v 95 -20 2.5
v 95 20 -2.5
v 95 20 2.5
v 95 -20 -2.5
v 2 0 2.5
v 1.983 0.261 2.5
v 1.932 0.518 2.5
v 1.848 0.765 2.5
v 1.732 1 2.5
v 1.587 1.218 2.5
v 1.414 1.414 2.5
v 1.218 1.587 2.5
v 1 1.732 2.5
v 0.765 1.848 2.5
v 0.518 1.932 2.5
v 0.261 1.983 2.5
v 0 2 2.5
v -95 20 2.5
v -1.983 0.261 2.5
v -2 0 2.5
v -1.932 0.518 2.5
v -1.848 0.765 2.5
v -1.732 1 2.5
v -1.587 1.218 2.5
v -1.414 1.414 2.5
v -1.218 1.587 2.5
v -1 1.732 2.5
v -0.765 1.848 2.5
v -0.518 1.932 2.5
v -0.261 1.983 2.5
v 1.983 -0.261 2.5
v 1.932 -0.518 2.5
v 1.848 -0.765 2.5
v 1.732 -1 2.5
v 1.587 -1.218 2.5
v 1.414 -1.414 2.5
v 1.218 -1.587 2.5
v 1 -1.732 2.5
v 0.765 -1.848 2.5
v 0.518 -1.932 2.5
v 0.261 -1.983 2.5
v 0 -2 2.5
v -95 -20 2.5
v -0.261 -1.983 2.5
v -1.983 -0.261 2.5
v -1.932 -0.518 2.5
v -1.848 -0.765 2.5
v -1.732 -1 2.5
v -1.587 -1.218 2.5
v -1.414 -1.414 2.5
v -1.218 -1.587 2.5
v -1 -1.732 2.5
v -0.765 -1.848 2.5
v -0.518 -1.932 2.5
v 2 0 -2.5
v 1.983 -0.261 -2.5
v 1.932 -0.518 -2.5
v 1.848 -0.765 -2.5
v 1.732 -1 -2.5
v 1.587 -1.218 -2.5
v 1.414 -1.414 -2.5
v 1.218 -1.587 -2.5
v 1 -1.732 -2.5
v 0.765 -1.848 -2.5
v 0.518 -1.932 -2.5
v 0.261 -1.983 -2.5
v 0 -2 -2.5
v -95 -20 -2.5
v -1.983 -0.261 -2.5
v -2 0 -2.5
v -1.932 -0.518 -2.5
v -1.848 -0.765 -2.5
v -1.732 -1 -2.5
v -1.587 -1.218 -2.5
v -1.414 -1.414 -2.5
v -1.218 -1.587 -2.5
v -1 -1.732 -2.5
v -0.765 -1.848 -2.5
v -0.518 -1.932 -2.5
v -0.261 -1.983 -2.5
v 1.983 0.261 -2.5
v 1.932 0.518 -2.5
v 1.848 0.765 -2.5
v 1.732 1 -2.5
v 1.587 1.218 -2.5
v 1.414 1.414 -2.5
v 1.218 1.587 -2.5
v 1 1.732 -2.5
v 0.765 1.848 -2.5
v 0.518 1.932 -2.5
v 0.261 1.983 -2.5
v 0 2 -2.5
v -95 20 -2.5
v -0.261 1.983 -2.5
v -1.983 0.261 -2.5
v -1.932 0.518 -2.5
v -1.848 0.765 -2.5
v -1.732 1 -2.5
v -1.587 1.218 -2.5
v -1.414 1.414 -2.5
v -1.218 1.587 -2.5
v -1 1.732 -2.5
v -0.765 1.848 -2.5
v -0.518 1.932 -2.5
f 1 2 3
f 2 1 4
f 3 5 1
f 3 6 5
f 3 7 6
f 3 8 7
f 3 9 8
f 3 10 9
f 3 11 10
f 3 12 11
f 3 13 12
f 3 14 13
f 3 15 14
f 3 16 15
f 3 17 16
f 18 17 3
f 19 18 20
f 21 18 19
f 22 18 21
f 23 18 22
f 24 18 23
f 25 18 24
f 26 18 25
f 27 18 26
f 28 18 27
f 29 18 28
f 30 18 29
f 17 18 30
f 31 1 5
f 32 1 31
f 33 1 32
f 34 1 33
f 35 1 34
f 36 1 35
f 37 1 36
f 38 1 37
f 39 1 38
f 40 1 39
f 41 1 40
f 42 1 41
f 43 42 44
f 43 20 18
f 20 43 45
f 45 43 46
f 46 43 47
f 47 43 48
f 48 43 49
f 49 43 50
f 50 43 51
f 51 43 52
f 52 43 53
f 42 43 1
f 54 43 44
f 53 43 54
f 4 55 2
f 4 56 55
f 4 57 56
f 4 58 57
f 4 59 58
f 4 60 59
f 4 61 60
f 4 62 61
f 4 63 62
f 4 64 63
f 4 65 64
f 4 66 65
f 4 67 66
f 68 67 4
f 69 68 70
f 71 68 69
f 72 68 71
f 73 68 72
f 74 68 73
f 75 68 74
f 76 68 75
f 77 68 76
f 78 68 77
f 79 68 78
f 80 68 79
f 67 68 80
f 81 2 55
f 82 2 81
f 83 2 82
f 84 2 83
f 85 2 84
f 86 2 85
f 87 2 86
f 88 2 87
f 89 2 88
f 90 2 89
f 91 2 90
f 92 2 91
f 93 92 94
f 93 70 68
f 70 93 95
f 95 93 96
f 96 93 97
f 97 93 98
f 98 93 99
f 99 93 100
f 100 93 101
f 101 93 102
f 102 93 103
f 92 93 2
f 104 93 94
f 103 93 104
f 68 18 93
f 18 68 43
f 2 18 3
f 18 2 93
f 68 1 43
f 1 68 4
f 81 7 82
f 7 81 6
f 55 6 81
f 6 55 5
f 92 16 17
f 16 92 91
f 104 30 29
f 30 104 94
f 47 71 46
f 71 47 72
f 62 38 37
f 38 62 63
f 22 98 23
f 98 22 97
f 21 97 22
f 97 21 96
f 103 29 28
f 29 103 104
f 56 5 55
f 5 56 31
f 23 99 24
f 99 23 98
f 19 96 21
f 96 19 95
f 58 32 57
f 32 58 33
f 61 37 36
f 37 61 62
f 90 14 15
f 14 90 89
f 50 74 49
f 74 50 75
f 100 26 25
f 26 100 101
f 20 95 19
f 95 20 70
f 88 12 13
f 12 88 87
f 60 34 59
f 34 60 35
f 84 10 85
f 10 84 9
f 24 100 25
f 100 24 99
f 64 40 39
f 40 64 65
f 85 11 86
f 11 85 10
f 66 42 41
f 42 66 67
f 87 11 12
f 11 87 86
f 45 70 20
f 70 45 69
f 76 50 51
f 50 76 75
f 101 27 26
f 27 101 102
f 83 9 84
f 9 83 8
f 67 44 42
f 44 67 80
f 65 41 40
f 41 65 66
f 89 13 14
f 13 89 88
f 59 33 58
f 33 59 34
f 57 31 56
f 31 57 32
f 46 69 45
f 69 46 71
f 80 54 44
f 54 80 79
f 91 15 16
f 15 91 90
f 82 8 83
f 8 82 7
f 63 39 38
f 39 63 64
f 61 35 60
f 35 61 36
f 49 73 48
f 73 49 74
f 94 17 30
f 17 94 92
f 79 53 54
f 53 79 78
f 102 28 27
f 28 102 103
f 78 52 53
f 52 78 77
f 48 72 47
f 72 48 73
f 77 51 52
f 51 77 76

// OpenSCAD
// ========================================
// a 190 x 40 x 5 mm plate with one 4 mm holes
// NeuroCAD canonical IR; dimensions are millimetres
// ========================================
$fn = 48;

difference() {
  cube(size=[190, 40, 5], center=true);
  cylinder(r=2, h=7, center=true);
}
